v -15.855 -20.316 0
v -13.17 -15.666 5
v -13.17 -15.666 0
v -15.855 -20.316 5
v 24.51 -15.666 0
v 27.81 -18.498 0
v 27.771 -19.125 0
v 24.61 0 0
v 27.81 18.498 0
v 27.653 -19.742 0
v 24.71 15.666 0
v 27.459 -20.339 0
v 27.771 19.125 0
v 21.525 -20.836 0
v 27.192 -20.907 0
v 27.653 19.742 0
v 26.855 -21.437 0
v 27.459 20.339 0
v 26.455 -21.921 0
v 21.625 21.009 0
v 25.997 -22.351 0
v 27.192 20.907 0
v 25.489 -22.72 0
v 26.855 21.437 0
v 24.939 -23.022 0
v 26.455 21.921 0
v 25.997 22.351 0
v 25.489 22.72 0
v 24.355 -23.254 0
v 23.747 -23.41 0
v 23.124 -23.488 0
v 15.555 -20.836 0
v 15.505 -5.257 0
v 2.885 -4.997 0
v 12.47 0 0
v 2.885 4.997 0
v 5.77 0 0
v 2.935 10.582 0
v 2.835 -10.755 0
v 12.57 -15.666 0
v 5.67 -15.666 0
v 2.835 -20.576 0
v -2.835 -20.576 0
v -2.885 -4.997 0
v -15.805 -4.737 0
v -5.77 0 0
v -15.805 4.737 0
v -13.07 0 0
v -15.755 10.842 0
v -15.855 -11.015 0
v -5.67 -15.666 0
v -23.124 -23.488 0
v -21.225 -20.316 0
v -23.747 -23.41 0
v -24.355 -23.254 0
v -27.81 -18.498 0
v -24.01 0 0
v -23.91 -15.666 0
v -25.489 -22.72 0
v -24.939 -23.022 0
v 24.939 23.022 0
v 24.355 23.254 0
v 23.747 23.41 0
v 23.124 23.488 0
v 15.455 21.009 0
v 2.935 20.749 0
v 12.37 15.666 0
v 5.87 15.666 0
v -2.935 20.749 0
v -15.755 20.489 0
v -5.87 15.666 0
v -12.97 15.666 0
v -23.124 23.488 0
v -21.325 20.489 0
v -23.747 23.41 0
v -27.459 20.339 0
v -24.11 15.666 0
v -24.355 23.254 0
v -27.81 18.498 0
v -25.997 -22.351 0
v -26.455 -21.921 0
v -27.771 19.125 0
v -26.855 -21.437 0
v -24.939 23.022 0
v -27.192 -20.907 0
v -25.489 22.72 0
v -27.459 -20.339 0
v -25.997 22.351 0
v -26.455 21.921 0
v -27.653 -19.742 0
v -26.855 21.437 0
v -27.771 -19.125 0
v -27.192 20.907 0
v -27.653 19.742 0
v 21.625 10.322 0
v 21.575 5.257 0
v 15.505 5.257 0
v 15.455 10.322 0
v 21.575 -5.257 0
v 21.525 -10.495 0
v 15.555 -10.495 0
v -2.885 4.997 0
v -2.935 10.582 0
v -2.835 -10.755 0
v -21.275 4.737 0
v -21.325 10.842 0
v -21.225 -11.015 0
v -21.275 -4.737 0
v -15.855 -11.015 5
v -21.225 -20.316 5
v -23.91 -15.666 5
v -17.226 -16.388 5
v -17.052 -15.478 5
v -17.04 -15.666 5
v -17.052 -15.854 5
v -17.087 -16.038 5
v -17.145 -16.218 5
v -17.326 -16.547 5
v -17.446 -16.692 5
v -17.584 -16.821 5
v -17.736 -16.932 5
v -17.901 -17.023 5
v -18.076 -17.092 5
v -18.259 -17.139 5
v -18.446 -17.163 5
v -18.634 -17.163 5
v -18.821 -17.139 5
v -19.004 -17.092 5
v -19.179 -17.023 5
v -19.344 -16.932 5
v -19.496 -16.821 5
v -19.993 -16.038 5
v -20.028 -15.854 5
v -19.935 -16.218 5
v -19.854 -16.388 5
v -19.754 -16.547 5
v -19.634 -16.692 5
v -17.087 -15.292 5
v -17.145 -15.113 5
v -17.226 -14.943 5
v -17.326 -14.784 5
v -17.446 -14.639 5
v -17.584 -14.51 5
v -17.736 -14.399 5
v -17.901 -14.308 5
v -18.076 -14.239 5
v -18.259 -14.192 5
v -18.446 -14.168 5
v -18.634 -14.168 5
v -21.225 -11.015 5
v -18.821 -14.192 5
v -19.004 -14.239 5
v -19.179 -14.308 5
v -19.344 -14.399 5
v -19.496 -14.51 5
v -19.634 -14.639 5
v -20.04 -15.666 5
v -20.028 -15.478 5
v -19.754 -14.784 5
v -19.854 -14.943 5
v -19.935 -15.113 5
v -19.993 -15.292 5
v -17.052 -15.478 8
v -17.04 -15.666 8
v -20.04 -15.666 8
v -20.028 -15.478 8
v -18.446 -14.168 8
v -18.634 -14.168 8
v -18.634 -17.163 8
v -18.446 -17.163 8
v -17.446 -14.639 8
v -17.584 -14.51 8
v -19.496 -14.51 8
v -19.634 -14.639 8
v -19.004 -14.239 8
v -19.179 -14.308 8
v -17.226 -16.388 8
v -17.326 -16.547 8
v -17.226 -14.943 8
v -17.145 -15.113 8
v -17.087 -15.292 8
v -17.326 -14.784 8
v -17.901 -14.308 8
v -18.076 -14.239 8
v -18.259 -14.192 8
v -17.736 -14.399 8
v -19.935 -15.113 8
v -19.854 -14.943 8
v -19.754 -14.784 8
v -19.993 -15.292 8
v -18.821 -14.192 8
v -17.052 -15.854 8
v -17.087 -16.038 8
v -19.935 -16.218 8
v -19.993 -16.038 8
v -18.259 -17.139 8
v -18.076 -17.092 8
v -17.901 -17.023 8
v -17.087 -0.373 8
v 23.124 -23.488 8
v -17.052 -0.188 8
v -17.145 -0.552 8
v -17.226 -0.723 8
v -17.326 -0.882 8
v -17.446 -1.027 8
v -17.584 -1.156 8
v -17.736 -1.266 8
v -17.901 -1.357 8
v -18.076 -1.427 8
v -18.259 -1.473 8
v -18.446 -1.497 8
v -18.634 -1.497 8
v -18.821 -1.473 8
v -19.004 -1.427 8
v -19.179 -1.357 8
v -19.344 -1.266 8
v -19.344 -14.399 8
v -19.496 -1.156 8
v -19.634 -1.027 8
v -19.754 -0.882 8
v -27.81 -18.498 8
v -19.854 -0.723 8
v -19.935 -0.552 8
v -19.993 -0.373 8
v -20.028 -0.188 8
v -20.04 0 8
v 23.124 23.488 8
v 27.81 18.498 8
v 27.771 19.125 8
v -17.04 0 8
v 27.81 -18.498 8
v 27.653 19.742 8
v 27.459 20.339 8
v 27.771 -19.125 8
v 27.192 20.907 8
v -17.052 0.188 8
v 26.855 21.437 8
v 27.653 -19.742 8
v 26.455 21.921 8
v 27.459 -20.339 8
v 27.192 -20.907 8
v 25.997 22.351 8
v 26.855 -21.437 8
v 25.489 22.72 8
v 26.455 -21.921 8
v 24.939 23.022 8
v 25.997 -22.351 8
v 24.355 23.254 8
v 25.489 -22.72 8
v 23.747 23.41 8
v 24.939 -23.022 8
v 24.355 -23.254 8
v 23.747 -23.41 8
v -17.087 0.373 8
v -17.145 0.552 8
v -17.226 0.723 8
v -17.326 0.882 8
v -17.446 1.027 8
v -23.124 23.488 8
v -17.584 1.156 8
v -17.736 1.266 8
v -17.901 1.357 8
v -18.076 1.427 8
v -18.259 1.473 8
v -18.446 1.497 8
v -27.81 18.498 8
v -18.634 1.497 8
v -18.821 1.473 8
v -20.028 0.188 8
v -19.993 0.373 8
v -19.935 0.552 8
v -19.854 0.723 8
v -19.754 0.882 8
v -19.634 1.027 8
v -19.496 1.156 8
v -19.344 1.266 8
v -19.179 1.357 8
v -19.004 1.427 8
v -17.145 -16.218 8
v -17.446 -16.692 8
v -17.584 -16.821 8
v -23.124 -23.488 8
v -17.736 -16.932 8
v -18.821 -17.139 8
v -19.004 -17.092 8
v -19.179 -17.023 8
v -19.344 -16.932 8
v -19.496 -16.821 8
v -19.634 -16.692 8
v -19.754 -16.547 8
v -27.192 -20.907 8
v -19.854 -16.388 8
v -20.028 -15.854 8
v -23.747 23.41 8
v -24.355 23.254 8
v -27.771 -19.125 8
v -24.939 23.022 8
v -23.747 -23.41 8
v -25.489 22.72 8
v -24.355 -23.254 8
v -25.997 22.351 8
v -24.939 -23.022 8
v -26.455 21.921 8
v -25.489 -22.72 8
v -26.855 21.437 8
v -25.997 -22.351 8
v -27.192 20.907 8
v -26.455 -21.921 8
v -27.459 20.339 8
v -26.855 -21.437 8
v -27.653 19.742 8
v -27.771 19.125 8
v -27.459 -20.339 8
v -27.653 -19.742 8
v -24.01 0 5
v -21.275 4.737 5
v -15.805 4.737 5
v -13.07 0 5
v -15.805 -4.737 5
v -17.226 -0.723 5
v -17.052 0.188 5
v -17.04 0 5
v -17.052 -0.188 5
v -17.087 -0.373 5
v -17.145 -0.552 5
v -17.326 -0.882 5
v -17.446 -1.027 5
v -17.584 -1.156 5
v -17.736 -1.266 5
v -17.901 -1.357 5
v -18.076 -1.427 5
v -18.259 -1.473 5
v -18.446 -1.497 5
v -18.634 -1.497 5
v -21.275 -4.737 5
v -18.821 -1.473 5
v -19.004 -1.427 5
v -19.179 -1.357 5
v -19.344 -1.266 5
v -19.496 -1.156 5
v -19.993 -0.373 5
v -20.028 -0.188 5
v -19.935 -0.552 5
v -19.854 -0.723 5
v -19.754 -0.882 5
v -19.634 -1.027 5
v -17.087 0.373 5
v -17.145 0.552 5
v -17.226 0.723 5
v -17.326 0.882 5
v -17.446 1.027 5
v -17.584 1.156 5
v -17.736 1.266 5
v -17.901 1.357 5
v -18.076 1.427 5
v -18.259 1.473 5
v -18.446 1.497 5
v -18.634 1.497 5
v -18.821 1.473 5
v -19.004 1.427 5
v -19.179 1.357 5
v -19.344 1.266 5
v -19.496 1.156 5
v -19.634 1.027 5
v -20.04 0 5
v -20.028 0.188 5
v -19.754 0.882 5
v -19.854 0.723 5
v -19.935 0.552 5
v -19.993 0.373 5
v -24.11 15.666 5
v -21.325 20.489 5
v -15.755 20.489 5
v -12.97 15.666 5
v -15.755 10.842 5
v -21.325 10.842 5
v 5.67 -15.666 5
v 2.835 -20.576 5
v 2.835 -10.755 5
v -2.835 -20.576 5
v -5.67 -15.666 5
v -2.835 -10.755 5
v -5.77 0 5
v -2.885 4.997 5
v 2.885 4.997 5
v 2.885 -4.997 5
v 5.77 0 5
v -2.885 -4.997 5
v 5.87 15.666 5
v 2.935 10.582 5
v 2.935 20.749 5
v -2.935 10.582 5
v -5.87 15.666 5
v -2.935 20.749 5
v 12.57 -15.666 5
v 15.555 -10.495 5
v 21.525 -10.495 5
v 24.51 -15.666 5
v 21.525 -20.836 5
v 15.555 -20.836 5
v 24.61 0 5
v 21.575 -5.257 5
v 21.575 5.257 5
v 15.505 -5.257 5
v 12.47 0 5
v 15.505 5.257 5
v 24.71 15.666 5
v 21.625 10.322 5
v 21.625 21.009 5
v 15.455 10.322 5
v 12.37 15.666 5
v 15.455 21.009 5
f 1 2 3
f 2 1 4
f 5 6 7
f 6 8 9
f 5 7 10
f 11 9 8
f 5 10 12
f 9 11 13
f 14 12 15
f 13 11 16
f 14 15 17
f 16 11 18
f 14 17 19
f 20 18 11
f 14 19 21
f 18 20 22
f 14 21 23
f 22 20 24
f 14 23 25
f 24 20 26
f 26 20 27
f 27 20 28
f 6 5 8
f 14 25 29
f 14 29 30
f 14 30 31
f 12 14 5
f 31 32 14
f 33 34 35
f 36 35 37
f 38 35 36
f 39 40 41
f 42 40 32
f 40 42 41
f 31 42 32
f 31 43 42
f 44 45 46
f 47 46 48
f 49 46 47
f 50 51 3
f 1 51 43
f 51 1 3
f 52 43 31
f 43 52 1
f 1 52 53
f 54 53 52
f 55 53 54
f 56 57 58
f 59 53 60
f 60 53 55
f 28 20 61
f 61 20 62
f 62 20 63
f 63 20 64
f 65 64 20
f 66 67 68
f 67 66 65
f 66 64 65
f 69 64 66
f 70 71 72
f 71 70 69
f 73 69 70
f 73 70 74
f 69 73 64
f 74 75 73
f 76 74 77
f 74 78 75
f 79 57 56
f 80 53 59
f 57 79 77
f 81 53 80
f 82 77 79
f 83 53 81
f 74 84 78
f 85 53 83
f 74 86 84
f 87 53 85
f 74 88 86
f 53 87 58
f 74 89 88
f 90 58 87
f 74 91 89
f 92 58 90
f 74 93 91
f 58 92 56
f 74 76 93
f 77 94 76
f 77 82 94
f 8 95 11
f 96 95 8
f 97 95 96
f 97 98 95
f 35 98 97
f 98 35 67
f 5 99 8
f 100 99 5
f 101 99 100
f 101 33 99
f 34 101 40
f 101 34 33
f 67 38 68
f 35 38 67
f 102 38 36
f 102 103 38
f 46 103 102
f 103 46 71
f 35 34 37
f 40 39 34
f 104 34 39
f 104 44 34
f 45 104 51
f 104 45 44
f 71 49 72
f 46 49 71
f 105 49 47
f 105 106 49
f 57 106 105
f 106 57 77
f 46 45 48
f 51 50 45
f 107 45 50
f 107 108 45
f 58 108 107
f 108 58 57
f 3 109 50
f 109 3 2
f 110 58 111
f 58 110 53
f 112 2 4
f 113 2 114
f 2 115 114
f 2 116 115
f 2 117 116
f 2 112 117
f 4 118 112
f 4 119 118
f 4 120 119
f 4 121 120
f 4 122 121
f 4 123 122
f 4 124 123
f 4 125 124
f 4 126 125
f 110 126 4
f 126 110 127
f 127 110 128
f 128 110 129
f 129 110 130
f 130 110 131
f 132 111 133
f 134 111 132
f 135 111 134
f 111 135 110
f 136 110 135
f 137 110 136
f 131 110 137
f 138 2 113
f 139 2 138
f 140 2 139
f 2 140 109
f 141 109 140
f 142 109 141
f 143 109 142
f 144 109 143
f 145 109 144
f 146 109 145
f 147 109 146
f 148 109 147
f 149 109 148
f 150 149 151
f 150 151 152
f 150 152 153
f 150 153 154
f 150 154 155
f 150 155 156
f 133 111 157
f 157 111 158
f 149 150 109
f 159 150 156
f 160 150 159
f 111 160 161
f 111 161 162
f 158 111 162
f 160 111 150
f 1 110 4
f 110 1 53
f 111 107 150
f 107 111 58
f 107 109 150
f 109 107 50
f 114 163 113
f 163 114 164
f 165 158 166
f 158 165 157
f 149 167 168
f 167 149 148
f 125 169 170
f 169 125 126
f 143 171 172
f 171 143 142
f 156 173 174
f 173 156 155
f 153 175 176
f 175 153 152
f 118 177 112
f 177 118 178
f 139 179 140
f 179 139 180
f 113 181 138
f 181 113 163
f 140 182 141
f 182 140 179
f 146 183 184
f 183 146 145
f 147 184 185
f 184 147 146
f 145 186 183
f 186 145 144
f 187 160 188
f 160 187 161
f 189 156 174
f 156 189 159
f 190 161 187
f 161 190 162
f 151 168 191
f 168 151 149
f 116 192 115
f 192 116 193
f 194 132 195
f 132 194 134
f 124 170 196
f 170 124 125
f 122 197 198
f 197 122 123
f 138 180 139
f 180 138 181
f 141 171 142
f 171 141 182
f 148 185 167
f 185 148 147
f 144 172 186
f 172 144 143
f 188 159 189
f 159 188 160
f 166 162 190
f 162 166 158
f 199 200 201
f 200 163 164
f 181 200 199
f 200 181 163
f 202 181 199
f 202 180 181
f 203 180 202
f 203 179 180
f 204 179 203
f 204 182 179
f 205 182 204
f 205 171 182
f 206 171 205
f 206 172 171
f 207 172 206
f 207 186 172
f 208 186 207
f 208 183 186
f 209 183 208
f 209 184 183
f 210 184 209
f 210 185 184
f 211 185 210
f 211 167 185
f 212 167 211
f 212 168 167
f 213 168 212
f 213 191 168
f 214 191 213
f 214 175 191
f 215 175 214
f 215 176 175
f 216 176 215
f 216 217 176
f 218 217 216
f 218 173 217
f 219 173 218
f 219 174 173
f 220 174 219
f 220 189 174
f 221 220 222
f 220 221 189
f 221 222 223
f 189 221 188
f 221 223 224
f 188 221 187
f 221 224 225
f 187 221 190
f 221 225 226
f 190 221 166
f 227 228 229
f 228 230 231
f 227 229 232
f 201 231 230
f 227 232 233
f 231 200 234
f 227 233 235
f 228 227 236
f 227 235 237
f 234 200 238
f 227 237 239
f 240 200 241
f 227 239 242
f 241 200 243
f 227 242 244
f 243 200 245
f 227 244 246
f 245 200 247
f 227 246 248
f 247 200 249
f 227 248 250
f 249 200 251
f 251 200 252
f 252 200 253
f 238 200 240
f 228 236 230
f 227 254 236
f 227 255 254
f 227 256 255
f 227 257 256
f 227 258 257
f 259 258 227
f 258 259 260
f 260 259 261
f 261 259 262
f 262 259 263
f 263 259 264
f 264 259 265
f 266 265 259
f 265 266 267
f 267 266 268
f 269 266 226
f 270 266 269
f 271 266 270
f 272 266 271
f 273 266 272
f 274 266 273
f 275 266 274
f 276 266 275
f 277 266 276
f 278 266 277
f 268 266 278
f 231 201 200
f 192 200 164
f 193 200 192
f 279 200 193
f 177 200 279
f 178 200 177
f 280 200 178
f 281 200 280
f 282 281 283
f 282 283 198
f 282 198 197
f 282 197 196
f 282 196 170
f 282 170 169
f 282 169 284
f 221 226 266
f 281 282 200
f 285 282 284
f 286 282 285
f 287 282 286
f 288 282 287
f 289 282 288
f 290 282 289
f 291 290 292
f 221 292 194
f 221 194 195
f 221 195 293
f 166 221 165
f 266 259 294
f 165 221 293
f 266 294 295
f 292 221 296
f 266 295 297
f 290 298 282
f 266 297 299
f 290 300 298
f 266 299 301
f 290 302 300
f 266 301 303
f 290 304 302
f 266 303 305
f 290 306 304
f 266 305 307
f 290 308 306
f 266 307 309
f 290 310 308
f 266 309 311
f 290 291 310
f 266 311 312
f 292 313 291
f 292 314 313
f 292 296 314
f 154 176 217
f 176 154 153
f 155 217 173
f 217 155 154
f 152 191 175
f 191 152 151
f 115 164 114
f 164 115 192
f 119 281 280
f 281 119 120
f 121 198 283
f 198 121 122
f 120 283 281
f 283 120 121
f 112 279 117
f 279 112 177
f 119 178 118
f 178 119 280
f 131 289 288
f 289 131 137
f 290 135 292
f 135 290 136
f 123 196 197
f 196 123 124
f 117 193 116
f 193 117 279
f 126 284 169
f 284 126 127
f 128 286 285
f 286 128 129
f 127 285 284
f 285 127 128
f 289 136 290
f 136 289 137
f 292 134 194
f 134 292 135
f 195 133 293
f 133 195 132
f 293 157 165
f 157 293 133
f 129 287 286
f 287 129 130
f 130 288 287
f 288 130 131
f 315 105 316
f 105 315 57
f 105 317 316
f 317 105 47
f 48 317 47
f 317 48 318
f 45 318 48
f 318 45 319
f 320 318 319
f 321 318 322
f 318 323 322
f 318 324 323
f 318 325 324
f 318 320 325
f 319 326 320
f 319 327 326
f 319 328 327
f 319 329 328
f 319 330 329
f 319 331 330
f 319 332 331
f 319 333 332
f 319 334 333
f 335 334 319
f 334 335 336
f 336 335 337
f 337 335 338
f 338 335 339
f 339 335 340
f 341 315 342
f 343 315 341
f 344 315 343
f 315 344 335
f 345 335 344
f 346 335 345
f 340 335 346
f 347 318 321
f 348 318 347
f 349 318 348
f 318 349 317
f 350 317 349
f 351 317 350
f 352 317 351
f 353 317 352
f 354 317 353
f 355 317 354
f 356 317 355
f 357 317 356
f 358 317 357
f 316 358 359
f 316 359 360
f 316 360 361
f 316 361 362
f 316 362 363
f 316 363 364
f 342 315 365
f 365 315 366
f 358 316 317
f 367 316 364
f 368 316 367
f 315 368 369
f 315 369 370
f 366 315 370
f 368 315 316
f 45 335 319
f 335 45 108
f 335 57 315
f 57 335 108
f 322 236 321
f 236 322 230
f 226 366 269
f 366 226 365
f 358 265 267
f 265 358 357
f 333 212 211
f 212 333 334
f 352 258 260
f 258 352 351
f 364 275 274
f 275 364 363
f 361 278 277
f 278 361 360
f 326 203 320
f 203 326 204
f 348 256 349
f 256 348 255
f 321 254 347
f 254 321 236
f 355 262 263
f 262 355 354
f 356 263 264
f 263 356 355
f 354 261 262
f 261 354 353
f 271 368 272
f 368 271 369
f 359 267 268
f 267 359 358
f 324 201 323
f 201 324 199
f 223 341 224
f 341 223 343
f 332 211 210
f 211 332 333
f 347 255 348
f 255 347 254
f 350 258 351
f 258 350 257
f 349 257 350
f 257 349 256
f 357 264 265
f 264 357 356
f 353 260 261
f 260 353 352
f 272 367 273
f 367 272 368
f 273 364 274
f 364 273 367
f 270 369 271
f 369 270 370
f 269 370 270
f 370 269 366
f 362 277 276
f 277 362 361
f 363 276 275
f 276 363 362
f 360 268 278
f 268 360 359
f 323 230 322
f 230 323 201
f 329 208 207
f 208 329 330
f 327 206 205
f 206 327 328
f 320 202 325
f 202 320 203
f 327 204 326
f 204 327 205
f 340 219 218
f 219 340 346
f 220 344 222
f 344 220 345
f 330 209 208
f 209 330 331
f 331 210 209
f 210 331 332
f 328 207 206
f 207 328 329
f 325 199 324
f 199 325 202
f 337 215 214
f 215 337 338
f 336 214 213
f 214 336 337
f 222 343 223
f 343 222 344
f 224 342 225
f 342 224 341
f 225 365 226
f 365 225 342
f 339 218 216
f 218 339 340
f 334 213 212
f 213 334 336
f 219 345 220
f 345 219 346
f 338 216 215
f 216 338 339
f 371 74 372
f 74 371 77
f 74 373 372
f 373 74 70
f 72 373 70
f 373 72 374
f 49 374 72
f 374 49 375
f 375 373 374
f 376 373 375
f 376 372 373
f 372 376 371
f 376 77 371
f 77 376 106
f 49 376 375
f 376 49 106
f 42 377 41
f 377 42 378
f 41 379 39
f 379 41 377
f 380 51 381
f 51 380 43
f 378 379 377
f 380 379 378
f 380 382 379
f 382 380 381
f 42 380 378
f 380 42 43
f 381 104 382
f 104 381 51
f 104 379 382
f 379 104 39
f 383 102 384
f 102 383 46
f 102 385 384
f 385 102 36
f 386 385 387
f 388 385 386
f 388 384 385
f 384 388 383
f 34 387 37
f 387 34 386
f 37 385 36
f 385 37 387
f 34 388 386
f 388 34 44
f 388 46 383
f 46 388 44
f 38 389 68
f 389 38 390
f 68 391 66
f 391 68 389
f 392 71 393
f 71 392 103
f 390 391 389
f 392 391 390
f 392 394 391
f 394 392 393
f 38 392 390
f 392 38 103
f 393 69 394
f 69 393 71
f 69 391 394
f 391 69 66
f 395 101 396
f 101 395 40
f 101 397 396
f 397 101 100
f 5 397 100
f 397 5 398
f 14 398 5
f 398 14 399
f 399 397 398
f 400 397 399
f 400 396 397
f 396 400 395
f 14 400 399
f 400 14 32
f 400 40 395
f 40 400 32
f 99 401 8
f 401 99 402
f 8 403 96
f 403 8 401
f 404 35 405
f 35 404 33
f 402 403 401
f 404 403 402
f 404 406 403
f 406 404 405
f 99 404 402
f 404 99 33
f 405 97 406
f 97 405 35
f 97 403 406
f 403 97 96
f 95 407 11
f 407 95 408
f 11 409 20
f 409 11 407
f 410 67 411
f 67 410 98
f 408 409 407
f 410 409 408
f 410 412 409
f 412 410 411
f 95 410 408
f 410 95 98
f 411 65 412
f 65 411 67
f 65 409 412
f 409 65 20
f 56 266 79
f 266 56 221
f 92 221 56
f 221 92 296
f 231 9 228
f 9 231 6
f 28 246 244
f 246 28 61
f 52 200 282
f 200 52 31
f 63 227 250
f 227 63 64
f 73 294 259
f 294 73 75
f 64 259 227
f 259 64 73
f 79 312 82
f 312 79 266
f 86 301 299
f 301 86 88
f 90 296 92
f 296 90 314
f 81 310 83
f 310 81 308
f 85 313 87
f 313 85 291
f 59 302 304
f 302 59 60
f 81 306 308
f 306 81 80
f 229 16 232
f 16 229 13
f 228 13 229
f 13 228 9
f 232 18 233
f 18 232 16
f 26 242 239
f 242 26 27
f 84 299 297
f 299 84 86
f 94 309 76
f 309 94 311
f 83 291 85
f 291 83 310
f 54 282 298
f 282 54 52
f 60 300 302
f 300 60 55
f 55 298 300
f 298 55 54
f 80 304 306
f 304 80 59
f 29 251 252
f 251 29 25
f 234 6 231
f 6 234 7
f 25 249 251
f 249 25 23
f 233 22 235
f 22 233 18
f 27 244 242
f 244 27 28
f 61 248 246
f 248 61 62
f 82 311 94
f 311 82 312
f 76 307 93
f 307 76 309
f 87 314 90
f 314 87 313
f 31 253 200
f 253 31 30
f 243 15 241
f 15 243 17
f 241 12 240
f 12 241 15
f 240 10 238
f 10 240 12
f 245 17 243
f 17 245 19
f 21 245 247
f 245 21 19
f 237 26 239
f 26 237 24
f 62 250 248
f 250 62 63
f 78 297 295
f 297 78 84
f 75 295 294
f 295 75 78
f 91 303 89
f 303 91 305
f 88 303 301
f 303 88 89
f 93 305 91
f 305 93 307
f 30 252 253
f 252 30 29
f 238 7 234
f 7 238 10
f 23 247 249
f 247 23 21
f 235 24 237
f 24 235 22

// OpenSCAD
$fn = 50;


difference() {
	union() {
		translate(v = [0, 0, 0]) {
			rotate(a = [0, 0, 0]) {
				hull() {
					translate(v = [-22.8100000000, 18.4982668977, 0]) {
						rotate(a = [0, 0, 0]) {
							translate(v = [0, 0, 0]) {
								rotate(a = [0, 0, 0]) {
									cylinder(h = 8, r = 5);
								}
							}
						}
					}
					translate(v = [22.8100000000, 18.4982668977, 0]) {
						rotate(a = [0, 0, 0]) {
							translate(v = [0, 0, 0]) {
								rotate(a = [0, 0, 0]) {
									cylinder(h = 8, r = 5);
								}
							}
						}
					}
					translate(v = [-22.8100000000, -18.4982668977, 0]) {
						rotate(a = [0, 0, 0]) {
							translate(v = [0, 0, 0]) {
								rotate(a = [0, 0, 0]) {
									cylinder(h = 8, r = 5);
								}
							}
						}
					}
					translate(v = [22.8100000000, -18.4982668977, 0]) {
						rotate(a = [0, 0, 0]) {
							translate(v = [0, 0, 0]) {
								rotate(a = [0, 0, 0]) {
									cylinder(h = 8, r = 5);
								}
							}
						}
					}
				}
			}
		}
	}
	union() {
		translate(v = [-18.5400000000, -15.6655112652, 0]) {
			rotate(a = [0, 0, 0]) {
				translate(v = [0, 0, 0]) {
					rotate(a = [0, 0, 0]) {
						linear_extrude(height = 5) {
							polygon(points = [[5.3700000000, 0.0000000000], [2.6850000000, 4.6505564183], [-2.6850000000, 4.6505564183], [-5.3700000000, 0.0000000000], [-2.6850000000, -4.6505564183], [2.6850000000, -4.6505564183]]);
						}
					}
				}
			}
		}
		#translate(v = [-18.5400000000, -15.6655112652, 0]) {
			rotate(a = [0, 0, 0]) {
				cylinder(h = 8, r = 1.5000000000);
			}
		}
		translate(v = [-18.5400000000, 0.0000000000, 0]) {
			rotate(a = [0, 0, 0]) {
				translate(v = [0, 0, 0]) {
					rotate(a = [0, 0, 0]) {
						linear_extrude(height = 5) {
							polygon(points = [[5.4700000000, 0.0000000000], [2.7350000000, 4.7371589587], [-2.7350000000, 4.7371589587], [-5.4700000000, 0.0000000000], [-2.7350000000, -4.7371589587], [2.7350000000, -4.7371589587]]);
						}
					}
				}
			}
		}
		#translate(v = [-18.5400000000, 0.0000000000, 0]) {
			rotate(a = [0, 0, 0]) {
				cylinder(h = 8, r = 1.5000000000);
			}
		}
		translate(v = [-18.5400000000, 15.6655112652, 0]) {
			rotate(a = [0, 0, 0]) {
				translate(v = [0, 0, 0]) {
					rotate(a = [0, 0, 0]) {
						linear_extrude(height = 5) {
							polygon(points = [[5.5700000000, 0.0000000000], [2.7850000000, 4.8237614991], [-2.7850000000, 4.8237614991], [-5.5700000000, 0.0000000000], [-2.7850000000, -4.8237614991], [2.7850000000, -4.8237614991]]);
						}
					}
				}
			}
		}
		translate(v = [0.0000000000, -15.6655112652, 0]) {
			rotate(a = [0, 0, 0]) {
				translate(v = [0, 0, 0]) {
					rotate(a = [0, 0, 0]) {
						linear_extrude(height = 5) {
							polygon(points = [[5.6700000000, 0.0000000000], [2.8350000000, 4.9103640395], [-2.8350000000, 4.9103640395], [-5.6700000000, 0.0000000000], [-2.8350000000, -4.9103640395], [2.8350000000, -4.9103640395]]);
						}
					}
				}
			}
		}
		translate(v = [0.0000000000, 0.0000000000, 0]) {
			rotate(a = [0, 0, 0]) {
				translate(v = [0, 0, 0]) {
					rotate(a = [0, 0, 0]) {
						linear_extrude(height = 5) {
							polygon(points = [[5.7700000000, 0.0000000000], [2.8850000000, 4.9969665798], [-2.8850000000, 4.9969665798], [-5.7700000000, 0.0000000000], [-2.8850000000, -4.9969665798], [2.8850000000, -4.9969665798]]);
						}
					}
				}
			}
		}
		translate(v = [0.0000000000, 15.6655112652, 0]) {
			rotate(a = [0, 0, 0]) {
				translate(v = [0, 0, 0]) {
					rotate(a = [0, 0, 0]) {
						linear_extrude(height = 5) {
							polygon(points = [[5.8700000000, 0.0000000000], [2.9350000000, 5.0835691202], [-2.9350000000, 5.0835691202], [-5.8700000000, 0.0000000000], [-2.9350000000, -5.0835691202], [2.9350000000, -5.0835691202]]);
						}
					}
				}
			}
		}
		translate(v = [18.5400000000, -15.6655112652, 0]) {
			rotate(a = [0, 0, 0]) {
				translate(v = [0, 0, 0]) {
					rotate(a = [0, 0, 0]) {
						linear_extrude(height = 5) {
							polygon(points = [[5.9700000000, 0.0000000000], [2.9850000000, 5.1701716606], [-2.9850000000, 5.1701716606], [-5.9700000000, 0.0000000000], [-2.9850000000, -5.1701716606], [2.9850000000, -5.1701716606]]);
						}
					}
				}
			}
		}
		translate(v = [18.5400000000, 0.0000000000, 0]) {
			rotate(a = [0, 0, 0]) {
				translate(v = [0, 0, 0]) {
					rotate(a = [0, 0, 0]) {
						linear_extrude(height = 5) {
							polygon(points = [[6.0700000000, 0.0000000000], [3.0350000000, 5.2567742010], [-3.0350000000, 5.2567742010], [-6.0700000000, 0.0000000000], [-3.0350000000, -5.2567742010], [3.0350000000, -5.2567742010]]);
						}
					}
				}
			}
		}
		translate(v = [18.5400000000, 15.6655112652, 0]) {
			rotate(a = [0, 0, 0]) {
				translate(v = [0, 0, 0]) {
					rotate(a = [0, 0, 0]) {
						linear_extrude(height = 5) {
							polygon(points = [[6.1700000000, 0.0000000000], [3.0850000000, 5.3433767413], [-3.0850000000, 5.3433767413], [-6.1700000000, 0.0000000000], [-3.0850000000, -5.3433767413], [3.0850000000, -5.3433767413]]);
						}
					}
				}
			}
		}
	}
}
